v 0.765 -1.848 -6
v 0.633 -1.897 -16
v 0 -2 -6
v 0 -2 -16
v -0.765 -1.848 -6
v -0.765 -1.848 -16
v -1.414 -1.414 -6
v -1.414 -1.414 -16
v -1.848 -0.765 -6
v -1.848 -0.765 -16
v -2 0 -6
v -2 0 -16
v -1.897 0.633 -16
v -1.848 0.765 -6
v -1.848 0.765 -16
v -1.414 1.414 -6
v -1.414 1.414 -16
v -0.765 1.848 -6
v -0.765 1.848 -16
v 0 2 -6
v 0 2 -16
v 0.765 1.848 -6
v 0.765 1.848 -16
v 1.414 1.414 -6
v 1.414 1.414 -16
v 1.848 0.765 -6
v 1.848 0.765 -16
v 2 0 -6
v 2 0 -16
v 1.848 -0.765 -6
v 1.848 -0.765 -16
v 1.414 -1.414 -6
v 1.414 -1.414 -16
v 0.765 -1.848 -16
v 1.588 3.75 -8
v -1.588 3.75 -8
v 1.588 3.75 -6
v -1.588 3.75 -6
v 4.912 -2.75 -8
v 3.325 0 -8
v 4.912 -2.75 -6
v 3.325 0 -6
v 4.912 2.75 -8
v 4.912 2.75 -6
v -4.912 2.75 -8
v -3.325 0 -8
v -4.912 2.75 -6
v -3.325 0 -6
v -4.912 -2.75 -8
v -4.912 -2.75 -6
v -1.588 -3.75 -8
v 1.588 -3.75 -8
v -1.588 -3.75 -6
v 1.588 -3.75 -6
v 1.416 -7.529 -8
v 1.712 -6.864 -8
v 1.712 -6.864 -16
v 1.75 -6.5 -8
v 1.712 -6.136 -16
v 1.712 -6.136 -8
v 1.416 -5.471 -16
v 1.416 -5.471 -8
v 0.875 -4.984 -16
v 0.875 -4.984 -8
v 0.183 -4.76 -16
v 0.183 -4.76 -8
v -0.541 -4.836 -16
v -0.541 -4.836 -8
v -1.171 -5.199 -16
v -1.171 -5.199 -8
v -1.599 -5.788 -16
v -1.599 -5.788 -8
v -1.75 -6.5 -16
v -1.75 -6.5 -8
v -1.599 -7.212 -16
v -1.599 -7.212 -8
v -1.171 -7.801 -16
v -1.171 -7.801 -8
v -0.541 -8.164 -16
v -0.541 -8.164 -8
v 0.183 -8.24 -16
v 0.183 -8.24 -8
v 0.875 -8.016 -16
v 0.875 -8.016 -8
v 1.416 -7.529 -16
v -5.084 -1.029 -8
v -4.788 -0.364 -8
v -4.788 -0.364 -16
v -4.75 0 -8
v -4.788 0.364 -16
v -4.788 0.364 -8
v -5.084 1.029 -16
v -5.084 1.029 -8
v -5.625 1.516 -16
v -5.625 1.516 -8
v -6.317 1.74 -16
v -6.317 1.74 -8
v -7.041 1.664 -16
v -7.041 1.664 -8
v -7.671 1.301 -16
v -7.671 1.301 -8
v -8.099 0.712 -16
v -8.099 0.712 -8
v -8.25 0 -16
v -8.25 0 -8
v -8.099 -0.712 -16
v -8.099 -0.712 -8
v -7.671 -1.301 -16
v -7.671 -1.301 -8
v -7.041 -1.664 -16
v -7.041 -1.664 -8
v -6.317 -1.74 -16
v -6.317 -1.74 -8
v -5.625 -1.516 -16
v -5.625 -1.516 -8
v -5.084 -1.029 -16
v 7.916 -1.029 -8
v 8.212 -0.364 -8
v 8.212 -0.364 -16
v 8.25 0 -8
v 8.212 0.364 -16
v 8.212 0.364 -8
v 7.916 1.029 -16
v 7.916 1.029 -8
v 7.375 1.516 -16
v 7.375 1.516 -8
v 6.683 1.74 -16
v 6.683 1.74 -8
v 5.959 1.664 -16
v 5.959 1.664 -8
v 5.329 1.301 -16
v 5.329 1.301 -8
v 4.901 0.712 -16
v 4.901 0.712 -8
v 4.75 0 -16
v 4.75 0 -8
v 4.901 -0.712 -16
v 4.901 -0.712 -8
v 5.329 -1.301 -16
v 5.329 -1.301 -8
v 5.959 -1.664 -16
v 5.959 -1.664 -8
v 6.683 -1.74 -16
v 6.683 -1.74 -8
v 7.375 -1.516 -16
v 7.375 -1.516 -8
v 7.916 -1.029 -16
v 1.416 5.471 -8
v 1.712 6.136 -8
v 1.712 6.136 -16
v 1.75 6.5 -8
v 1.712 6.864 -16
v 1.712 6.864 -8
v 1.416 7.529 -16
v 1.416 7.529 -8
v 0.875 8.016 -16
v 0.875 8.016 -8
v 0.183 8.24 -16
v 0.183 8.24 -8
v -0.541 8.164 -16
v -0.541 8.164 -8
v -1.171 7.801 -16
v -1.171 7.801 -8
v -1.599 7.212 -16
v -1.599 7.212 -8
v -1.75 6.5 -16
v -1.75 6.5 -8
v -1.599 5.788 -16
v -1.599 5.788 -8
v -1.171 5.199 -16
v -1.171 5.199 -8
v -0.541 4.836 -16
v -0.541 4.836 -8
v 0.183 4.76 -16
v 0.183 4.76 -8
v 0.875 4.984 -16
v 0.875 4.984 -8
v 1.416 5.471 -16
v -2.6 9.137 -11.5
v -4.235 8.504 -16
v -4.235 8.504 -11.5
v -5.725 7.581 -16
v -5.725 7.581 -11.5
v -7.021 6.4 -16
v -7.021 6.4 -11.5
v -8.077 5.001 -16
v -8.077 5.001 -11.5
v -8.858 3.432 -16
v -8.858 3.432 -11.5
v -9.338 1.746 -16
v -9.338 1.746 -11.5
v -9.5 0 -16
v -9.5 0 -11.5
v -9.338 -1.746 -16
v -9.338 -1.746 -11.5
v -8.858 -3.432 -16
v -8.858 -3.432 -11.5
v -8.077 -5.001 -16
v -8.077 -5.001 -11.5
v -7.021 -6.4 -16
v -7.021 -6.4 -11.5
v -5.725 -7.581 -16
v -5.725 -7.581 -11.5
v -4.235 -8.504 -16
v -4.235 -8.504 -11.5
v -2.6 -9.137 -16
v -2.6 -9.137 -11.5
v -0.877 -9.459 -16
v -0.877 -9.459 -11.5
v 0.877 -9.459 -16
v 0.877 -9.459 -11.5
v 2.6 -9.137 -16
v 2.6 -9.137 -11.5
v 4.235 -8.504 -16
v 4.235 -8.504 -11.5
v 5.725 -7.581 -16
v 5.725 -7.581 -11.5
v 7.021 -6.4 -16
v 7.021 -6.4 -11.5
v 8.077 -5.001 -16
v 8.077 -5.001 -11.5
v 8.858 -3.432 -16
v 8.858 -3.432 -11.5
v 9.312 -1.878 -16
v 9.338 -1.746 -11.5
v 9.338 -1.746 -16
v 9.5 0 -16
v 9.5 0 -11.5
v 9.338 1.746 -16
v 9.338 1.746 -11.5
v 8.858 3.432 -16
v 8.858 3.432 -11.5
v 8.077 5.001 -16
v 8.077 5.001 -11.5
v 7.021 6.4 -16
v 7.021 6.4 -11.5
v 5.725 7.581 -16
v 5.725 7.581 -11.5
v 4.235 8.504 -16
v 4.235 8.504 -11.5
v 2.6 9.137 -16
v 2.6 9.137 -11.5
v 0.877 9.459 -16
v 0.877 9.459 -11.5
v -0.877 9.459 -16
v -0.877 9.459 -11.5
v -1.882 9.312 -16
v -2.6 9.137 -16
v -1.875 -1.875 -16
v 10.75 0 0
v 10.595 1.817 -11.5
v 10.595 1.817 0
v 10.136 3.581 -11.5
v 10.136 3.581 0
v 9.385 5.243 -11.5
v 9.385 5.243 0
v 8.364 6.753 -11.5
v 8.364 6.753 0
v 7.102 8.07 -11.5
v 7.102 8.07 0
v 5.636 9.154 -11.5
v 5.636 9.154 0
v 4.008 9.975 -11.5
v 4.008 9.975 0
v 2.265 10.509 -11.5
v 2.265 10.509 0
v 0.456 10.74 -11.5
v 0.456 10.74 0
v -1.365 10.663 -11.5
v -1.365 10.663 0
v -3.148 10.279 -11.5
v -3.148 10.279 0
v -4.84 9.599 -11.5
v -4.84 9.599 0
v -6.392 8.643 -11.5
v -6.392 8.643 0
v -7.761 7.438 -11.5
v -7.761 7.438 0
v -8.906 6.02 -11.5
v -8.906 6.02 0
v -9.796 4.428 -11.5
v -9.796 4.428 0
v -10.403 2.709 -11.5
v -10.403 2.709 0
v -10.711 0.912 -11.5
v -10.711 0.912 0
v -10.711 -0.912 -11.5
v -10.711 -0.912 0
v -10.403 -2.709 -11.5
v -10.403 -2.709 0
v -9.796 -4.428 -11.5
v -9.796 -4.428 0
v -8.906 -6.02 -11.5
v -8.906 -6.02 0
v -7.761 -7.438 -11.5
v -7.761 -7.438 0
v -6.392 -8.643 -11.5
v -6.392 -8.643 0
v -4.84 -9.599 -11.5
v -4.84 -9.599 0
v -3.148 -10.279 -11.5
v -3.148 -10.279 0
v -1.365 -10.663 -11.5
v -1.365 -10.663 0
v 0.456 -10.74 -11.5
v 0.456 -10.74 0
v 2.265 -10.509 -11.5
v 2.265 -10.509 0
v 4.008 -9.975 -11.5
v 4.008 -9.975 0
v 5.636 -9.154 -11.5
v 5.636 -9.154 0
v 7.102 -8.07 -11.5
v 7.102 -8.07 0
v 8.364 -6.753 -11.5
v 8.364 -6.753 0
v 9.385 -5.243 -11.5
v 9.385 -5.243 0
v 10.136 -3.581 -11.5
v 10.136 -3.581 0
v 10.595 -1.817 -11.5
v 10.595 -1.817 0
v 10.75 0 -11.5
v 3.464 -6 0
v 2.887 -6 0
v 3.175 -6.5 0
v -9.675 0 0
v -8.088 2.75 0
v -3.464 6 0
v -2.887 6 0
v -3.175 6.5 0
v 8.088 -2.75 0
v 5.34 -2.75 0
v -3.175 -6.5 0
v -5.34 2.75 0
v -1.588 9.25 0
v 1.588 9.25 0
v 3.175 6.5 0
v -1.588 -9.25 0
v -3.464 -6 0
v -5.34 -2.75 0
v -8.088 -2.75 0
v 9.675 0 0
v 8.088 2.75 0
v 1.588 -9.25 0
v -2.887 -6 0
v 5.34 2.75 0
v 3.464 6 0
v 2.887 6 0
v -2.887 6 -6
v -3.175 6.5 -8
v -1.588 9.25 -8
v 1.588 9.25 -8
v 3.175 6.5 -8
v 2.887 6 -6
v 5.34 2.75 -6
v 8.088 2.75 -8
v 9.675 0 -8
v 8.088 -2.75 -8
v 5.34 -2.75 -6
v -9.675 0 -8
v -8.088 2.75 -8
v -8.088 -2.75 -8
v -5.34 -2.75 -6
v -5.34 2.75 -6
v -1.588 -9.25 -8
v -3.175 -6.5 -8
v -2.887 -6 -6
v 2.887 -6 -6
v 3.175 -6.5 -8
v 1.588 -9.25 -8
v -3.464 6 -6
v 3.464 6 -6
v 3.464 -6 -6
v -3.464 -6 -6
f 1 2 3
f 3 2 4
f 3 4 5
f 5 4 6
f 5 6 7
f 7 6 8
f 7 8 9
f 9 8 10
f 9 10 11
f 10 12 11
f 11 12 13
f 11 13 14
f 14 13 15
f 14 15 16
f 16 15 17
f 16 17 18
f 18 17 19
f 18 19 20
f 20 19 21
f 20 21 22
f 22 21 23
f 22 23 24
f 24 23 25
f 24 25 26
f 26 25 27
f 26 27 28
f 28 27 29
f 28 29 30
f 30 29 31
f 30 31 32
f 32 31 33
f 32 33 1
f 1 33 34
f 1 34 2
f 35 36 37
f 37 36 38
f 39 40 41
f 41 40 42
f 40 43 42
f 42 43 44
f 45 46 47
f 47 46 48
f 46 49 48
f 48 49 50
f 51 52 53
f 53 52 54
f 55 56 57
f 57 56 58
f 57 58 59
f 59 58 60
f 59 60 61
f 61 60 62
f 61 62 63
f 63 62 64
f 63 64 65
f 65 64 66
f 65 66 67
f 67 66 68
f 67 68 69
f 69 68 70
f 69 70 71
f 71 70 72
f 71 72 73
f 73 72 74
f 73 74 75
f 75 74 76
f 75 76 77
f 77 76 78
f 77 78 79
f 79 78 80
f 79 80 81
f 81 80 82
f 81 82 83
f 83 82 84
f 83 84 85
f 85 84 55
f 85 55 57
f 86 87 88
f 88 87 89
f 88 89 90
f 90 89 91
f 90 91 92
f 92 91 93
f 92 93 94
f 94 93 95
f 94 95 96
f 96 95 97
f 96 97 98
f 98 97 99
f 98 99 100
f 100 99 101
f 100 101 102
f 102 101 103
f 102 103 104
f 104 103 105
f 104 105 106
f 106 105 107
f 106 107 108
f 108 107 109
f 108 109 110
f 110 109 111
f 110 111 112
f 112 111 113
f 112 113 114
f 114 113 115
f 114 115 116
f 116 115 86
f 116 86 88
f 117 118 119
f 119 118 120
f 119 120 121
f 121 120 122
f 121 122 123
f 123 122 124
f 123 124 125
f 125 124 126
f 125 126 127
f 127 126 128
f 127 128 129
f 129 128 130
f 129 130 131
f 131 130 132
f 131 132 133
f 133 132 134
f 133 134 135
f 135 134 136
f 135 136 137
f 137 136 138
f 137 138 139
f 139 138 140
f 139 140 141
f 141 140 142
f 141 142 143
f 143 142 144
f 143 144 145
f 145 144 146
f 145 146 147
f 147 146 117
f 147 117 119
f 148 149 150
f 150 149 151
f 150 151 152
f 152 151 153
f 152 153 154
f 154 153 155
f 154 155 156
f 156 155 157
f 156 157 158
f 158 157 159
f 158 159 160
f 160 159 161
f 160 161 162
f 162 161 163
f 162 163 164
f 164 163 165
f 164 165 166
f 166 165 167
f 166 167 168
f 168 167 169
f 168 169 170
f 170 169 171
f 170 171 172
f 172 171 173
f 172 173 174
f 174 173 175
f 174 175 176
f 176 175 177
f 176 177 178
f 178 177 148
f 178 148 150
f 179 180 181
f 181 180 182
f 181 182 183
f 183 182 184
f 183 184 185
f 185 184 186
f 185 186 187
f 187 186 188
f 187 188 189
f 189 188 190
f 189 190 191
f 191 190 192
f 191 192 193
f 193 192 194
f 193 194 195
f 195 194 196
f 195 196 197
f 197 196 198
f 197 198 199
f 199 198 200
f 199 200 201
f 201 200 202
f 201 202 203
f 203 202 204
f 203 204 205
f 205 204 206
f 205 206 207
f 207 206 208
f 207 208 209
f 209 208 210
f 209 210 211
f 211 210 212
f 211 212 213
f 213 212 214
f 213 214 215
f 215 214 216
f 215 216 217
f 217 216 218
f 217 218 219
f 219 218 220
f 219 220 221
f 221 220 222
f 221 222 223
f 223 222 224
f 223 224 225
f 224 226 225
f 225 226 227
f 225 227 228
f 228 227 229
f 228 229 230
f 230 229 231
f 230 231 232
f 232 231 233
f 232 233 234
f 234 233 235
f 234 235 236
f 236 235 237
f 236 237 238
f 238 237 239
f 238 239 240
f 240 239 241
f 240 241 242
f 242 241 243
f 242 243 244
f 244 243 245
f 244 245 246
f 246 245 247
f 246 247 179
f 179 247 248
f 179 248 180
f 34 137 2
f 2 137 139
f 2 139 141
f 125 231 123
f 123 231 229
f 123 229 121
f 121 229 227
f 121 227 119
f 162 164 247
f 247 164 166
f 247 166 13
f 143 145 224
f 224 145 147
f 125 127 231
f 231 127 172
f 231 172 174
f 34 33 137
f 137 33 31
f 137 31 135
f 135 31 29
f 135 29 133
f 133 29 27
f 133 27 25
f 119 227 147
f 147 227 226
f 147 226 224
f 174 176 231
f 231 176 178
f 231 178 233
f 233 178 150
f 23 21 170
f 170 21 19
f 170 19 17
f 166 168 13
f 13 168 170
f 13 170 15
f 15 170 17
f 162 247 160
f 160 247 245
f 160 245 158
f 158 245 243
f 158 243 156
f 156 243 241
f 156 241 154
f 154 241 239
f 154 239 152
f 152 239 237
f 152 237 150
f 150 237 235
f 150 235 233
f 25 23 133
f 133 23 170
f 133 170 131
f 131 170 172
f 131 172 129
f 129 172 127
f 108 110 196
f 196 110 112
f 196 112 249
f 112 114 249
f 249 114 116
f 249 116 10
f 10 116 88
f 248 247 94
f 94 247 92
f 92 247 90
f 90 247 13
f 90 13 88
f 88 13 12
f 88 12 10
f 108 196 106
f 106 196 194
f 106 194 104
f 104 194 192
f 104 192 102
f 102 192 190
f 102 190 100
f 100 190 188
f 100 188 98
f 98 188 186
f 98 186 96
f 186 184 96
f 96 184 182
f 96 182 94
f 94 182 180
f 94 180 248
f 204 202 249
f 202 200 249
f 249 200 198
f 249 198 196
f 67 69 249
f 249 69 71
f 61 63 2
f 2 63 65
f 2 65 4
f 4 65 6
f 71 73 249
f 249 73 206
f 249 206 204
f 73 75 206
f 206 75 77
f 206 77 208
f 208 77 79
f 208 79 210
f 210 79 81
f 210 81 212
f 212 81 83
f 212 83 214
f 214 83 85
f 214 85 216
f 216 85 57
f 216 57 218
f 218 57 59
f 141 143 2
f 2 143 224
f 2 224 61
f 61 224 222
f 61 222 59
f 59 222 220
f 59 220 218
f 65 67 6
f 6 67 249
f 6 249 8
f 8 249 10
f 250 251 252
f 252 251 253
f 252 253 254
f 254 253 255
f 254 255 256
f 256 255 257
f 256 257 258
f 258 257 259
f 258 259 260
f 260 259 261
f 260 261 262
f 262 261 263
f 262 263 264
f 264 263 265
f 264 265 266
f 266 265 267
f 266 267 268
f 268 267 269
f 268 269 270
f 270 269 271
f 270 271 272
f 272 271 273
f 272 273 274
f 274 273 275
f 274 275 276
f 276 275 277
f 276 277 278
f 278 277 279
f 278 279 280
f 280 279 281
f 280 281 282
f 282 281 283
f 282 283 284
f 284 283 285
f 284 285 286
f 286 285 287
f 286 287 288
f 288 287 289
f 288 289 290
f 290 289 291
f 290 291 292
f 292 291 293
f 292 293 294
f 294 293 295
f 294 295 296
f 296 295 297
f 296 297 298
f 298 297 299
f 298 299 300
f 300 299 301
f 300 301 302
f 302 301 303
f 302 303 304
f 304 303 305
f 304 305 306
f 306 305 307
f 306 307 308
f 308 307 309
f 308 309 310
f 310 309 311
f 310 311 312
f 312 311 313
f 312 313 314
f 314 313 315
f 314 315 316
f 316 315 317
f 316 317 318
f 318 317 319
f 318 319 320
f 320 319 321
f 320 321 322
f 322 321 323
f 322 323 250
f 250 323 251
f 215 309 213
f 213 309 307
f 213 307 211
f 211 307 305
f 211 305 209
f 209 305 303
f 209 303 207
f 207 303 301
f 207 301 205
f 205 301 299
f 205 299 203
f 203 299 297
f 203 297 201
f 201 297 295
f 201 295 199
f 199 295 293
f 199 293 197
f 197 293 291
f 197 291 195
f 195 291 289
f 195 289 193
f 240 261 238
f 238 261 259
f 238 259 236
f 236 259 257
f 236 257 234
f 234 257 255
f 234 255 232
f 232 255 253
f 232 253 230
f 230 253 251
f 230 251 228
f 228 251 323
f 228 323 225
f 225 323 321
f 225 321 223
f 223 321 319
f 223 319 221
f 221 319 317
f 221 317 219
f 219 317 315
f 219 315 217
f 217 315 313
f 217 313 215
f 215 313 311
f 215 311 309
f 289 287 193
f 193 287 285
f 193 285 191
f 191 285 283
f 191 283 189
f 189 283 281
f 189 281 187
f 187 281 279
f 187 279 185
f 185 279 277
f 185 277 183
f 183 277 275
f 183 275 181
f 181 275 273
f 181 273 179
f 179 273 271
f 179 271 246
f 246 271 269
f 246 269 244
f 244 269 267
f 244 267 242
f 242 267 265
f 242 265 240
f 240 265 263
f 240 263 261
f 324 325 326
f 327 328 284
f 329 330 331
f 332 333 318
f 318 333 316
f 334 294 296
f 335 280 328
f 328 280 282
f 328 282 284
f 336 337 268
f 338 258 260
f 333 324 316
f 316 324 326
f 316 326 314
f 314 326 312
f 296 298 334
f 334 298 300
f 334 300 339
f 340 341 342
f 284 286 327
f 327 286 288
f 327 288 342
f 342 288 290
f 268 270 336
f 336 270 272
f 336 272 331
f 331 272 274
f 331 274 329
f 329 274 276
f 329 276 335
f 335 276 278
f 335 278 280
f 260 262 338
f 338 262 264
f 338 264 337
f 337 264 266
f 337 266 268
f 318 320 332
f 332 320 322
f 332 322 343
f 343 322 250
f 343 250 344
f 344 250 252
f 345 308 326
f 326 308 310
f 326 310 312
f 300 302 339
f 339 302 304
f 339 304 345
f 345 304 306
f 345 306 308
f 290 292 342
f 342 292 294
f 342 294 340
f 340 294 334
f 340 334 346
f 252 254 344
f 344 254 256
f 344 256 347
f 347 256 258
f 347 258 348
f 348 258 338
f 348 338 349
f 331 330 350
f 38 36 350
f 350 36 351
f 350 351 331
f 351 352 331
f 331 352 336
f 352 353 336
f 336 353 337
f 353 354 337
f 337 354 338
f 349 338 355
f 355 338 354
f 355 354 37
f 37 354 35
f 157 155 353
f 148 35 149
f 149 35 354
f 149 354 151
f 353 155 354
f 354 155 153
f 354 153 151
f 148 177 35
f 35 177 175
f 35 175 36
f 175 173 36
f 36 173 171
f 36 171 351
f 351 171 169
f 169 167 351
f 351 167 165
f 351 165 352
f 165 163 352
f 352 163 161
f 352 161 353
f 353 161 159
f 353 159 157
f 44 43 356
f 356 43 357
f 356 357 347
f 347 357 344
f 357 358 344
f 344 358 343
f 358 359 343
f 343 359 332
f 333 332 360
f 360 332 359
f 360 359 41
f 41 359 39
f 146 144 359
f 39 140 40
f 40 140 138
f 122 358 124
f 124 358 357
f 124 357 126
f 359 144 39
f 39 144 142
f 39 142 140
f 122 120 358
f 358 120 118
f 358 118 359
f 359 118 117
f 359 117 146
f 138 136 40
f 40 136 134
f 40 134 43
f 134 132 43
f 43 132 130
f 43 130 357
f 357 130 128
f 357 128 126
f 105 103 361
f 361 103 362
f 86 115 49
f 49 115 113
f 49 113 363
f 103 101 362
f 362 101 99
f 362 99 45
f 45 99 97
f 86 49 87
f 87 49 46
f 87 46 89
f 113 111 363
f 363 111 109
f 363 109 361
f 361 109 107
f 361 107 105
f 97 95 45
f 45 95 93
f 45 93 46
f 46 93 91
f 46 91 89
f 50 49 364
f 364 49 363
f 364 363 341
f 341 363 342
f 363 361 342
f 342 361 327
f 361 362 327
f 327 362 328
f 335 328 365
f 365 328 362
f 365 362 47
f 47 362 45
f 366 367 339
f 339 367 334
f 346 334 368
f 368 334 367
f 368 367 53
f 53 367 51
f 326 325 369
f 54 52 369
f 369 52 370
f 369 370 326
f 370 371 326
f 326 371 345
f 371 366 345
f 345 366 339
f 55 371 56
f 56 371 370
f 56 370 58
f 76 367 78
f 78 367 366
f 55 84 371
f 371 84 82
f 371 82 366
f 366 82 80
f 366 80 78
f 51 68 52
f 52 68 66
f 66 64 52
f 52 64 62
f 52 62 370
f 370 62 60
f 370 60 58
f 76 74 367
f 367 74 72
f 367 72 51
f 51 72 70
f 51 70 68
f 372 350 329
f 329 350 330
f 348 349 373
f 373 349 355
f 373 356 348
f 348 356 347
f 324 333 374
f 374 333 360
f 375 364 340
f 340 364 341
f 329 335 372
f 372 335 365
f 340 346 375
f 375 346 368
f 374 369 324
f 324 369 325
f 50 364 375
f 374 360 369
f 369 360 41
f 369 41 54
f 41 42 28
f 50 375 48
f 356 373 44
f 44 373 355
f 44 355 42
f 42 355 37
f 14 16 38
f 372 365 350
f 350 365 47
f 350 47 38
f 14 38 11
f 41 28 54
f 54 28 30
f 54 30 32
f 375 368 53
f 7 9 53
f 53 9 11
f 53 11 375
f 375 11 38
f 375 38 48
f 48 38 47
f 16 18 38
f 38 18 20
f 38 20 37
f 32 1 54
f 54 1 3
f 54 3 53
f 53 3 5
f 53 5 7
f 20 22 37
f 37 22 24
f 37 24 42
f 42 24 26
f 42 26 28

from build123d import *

# Parameters (mm, degrees)
SKETCH1_R           = 9.5
BOSS_EXTRUDE1_DEPTH = 16
SKETCH1_3_R         = 10.75
SKETCH1_3_R_2       = 9.5
BOSS_EXTRUDE2_DEPTH = 11.5
SKETCH2_R           = 2
CUT_EXTRUDE1_DEPTH  = 23.070908454
SKETCH3_R           = 1.75
CUT_EXTRUDE2_DEPTH  = 23.070908454
CUT_EXTRUDE7_START  = -8
SKETCH5_R           = 1.75
CUT_EXTRUDE7_DEPTH  = 8
CUT_EXTRUDE8_DEPTH  = 6


with BuildPart() as part:
    # Sketch1 → Boss-Extrude1 (new body)
    with BuildSketch(Plane.XY):
        Circle(SKETCH1_R)
    extrude(amount=-BOSS_EXTRUDE1_DEPTH)

    # Sketch1<3> → Boss-Extrude2 (add)
    with BuildSketch(Plane.XY):
        Circle(SKETCH1_3_R)
        Circle(SKETCH1_3_R_2, mode=Mode.SUBTRACT)
    extrude(amount=-BOSS_EXTRUDE2_DEPTH)

    # Sketch2 → Cut-Extrude1 (cut, through all)
    with BuildSketch(Plane.XY):
        Circle(SKETCH2_R)
    extrude(amount=-CUT_EXTRUDE1_DEPTH, mode=Mode.SUBTRACT)

    # Sketch3 → Cut-Extrude2 (cut, through all)
    with BuildSketch(Plane(origin=(0, 0, -16), x_dir=(-1, 0, 0), z_dir=(0, 0, -1))):
        with Locations((-6.5, 0)):
            Circle(SKETCH3_R)
        with Locations((0, 6.5)):
            Circle(SKETCH3_R)
        with Locations((6.5, 0)):
            Circle(SKETCH3_R)
        with Locations((0, -6.5)):
            Circle(SKETCH3_R)
    extrude(amount=-CUT_EXTRUDE2_DEPTH, mode=Mode.SUBTRACT)

    # Sketch5 → Cut-Extrude7 (cut)
    # profile 1 of 4: a face of its own
    with BuildSketch(Plane.XY.offset(CUT_EXTRUDE7_START)):
        Polygon((-1.58771324, 3.75), (1.58771324, 3.75), (3.175426481, 6.5), (1.58771324, 9.25), (-1.58771324, 9.25), (-3.175426481, 6.5), align=None)
        with Locations((0, 6.5)):
            Circle(SKETCH5_R, mode=Mode.SUBTRACT)
    # profile 2 of 4: a face of its own
    with BuildSketch(Plane.XY.offset(CUT_EXTRUDE7_START)):
        Polygon((-8.08771324, -2.75), (-4.91228676, -2.75), (-3.324573519, 0), (-4.91228676, 2.75), (-8.08771324, 2.75), (-9.675426481, 0), align=None)
    # profile 3 of 4: a face of its own
    with BuildSketch(Plane.XY.offset(CUT_EXTRUDE7_START)):
        Polygon((-1.58771324, -9.25), (1.58771324, -9.25), (3.175426481, -6.5), (1.58771324, -3.75), (-1.58771324, -3.75), (-3.175426481, -6.5), align=None)
        with Locations((0, -6.5)):
            Circle(SKETCH5_R, mode=Mode.SUBTRACT)
    # profile 4 of 4: a face of its own
    with BuildSketch(Plane.XY.offset(CUT_EXTRUDE7_START)):
        Polygon((4.91228676, -2.75), (8.08771324, -2.75), (9.675426481, 0), (8.08771324, 2.75), (4.91228676, 2.75), (3.324573519, 0), align=None)
        with Locations((6.5, 0)):
            Circle(SKETCH5_R, mode=Mode.SUBTRACT)
    extrude(amount=CUT_EXTRUDE7_DEPTH, mode=Mode.SUBTRACT)

    # Sketch6 → Cut-Extrude8 (cut)
    with BuildSketch(Plane.XY):
        Polygon((3.464101615, -6), (6.92820323, 0), (3.464101615, 6), (-3.464101615, 6), (-6.92820323, 0), (-3.464101615, -6), align=None)
    extrude(amount=-CUT_EXTRUDE8_DEPTH, mode=Mode.SUBTRACT)


solid = part.part
